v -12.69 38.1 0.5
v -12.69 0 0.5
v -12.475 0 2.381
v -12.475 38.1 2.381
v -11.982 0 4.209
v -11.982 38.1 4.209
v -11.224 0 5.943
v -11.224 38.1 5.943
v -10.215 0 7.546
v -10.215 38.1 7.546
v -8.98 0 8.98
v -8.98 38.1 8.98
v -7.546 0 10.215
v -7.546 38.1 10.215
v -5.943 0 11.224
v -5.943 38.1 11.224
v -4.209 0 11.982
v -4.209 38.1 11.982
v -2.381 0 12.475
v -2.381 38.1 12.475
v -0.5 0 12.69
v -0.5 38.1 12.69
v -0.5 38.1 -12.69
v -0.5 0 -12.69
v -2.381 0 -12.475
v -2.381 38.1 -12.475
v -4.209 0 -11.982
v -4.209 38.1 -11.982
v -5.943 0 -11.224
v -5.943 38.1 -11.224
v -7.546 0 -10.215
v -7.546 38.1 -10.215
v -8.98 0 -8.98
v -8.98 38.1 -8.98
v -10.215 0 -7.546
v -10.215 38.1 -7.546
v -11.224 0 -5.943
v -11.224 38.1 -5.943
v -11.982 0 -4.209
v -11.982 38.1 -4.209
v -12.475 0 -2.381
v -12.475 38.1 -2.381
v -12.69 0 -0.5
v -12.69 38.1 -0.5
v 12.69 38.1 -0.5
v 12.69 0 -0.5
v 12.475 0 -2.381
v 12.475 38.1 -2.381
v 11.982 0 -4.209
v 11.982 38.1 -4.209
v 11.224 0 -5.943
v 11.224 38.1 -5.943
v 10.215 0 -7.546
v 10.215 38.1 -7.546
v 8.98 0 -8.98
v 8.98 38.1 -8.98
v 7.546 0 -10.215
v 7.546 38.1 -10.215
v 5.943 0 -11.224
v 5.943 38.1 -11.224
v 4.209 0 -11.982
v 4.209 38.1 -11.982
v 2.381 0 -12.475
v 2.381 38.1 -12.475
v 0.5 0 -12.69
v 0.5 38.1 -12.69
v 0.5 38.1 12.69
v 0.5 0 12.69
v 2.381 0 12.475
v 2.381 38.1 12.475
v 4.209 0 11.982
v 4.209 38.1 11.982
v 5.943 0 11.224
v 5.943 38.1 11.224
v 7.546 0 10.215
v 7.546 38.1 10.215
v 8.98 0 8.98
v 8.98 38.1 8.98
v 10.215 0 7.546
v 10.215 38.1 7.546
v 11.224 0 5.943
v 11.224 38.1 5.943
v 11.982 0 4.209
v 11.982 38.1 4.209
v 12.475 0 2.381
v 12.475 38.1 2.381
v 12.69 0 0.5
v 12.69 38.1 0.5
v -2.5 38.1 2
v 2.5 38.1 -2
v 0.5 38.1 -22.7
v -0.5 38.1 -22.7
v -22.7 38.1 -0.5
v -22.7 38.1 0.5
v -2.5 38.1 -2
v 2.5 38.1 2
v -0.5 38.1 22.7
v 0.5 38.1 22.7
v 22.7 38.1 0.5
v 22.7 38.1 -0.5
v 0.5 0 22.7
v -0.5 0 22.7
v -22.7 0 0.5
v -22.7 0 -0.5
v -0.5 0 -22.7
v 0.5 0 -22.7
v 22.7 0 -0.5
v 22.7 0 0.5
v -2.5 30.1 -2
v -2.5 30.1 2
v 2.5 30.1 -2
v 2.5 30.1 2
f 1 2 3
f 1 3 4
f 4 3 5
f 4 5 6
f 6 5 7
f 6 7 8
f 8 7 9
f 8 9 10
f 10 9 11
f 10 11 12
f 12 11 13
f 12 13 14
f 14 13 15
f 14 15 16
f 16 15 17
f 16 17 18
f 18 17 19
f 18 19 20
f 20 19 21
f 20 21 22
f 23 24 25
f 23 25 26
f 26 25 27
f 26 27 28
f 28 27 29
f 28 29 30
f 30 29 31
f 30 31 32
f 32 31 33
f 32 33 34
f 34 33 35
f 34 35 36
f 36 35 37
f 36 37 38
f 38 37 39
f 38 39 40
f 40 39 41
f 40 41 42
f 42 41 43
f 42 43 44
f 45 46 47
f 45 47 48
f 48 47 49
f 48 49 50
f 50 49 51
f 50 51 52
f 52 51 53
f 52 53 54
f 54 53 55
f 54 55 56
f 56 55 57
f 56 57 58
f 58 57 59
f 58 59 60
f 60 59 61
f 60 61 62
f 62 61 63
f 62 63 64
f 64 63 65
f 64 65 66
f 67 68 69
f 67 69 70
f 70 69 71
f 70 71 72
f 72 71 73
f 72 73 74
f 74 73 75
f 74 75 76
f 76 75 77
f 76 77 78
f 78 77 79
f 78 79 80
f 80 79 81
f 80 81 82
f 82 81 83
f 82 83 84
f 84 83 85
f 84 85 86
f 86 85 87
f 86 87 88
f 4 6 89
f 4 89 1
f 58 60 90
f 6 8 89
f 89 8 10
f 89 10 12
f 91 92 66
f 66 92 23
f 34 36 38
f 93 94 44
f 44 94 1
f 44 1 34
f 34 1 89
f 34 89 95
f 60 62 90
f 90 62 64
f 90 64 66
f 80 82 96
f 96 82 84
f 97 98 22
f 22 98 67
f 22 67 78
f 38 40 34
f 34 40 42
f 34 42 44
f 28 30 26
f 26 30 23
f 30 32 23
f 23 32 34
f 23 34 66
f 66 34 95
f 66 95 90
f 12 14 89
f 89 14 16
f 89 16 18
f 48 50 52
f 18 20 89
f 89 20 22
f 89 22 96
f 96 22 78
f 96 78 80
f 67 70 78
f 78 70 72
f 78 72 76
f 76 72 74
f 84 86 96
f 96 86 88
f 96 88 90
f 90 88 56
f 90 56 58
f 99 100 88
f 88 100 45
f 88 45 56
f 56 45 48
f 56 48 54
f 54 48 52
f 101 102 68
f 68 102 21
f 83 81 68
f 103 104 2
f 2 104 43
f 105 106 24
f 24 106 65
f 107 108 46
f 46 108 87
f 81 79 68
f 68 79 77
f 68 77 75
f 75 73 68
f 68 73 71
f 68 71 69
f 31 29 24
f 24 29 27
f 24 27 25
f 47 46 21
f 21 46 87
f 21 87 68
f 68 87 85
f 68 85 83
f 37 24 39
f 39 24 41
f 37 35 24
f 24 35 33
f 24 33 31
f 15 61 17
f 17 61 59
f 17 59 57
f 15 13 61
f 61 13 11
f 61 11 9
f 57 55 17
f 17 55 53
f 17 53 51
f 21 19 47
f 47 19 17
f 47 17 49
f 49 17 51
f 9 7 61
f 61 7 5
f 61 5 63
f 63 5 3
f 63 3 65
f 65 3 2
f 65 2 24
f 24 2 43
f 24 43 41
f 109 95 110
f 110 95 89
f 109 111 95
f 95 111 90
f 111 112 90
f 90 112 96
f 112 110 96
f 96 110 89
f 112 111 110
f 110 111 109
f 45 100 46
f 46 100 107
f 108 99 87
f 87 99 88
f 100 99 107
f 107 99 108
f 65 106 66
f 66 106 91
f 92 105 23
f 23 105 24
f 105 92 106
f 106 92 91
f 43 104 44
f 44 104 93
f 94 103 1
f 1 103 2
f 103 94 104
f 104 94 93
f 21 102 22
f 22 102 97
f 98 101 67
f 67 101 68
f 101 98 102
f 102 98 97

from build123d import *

# Parameters (mm, degrees)
SKETCH1_R           = 12.7
BOSS_EXTRUDE1_DEPTH = 38.1
SKETCH2_W           = 5
SKETCH2_H           = 4.000000128
CUT_EXTRUDE2_DEPTH  = 8
SKETCH5_W           = 1
SKETCH5_H           = 20.2
SKETCH5_W_2         = 20.2
SKETCH5_H_2         = 1
BOSS_EXTRUDE2_DEPTH = 38.1


with BuildPart() as part:
    # Sketch1 → Boss-Extrude1 (new body)
    with BuildSketch(Plane(origin=(0, 0, 0), x_dir=(1, 0, 0), z_dir=(0, 1, 0))):
        Circle(SKETCH1_R)
    extrude(amount=BOSS_EXTRUDE1_DEPTH)

    # Sketch2 → Cut-Extrude2 (cut)
    with BuildSketch(Plane(origin=(0, 38.1, 0), x_dir=(1, 0, 0), z_dir=(0, 1, 0))):
        Rectangle(SKETCH2_W, SKETCH2_H)
    extrude(amount=-CUT_EXTRUDE2_DEPTH, mode=Mode.SUBTRACT)

    # Sketch5 → Boss-Extrude2 (add)
    with BuildSketch(Plane(origin=(0, 38.1, 0), x_dir=(1, 0, 0), z_dir=(0, 1, 0))):
        with Locations((0, 12.6)):
            Rectangle(SKETCH5_W, SKETCH5_H)
        with Locations((-12.6, 0)):
            Rectangle(SKETCH5_W_2, SKETCH5_H_2)
        with Locations((12.6, 0)):
            Rectangle(SKETCH5_W_2, SKETCH5_H_2)
        with Locations((0, -12.6)):
            Rectangle(SKETCH5_W, SKETCH5_H)
    extrude(amount=-BOSS_EXTRUDE2_DEPTH)


solid = part.part
